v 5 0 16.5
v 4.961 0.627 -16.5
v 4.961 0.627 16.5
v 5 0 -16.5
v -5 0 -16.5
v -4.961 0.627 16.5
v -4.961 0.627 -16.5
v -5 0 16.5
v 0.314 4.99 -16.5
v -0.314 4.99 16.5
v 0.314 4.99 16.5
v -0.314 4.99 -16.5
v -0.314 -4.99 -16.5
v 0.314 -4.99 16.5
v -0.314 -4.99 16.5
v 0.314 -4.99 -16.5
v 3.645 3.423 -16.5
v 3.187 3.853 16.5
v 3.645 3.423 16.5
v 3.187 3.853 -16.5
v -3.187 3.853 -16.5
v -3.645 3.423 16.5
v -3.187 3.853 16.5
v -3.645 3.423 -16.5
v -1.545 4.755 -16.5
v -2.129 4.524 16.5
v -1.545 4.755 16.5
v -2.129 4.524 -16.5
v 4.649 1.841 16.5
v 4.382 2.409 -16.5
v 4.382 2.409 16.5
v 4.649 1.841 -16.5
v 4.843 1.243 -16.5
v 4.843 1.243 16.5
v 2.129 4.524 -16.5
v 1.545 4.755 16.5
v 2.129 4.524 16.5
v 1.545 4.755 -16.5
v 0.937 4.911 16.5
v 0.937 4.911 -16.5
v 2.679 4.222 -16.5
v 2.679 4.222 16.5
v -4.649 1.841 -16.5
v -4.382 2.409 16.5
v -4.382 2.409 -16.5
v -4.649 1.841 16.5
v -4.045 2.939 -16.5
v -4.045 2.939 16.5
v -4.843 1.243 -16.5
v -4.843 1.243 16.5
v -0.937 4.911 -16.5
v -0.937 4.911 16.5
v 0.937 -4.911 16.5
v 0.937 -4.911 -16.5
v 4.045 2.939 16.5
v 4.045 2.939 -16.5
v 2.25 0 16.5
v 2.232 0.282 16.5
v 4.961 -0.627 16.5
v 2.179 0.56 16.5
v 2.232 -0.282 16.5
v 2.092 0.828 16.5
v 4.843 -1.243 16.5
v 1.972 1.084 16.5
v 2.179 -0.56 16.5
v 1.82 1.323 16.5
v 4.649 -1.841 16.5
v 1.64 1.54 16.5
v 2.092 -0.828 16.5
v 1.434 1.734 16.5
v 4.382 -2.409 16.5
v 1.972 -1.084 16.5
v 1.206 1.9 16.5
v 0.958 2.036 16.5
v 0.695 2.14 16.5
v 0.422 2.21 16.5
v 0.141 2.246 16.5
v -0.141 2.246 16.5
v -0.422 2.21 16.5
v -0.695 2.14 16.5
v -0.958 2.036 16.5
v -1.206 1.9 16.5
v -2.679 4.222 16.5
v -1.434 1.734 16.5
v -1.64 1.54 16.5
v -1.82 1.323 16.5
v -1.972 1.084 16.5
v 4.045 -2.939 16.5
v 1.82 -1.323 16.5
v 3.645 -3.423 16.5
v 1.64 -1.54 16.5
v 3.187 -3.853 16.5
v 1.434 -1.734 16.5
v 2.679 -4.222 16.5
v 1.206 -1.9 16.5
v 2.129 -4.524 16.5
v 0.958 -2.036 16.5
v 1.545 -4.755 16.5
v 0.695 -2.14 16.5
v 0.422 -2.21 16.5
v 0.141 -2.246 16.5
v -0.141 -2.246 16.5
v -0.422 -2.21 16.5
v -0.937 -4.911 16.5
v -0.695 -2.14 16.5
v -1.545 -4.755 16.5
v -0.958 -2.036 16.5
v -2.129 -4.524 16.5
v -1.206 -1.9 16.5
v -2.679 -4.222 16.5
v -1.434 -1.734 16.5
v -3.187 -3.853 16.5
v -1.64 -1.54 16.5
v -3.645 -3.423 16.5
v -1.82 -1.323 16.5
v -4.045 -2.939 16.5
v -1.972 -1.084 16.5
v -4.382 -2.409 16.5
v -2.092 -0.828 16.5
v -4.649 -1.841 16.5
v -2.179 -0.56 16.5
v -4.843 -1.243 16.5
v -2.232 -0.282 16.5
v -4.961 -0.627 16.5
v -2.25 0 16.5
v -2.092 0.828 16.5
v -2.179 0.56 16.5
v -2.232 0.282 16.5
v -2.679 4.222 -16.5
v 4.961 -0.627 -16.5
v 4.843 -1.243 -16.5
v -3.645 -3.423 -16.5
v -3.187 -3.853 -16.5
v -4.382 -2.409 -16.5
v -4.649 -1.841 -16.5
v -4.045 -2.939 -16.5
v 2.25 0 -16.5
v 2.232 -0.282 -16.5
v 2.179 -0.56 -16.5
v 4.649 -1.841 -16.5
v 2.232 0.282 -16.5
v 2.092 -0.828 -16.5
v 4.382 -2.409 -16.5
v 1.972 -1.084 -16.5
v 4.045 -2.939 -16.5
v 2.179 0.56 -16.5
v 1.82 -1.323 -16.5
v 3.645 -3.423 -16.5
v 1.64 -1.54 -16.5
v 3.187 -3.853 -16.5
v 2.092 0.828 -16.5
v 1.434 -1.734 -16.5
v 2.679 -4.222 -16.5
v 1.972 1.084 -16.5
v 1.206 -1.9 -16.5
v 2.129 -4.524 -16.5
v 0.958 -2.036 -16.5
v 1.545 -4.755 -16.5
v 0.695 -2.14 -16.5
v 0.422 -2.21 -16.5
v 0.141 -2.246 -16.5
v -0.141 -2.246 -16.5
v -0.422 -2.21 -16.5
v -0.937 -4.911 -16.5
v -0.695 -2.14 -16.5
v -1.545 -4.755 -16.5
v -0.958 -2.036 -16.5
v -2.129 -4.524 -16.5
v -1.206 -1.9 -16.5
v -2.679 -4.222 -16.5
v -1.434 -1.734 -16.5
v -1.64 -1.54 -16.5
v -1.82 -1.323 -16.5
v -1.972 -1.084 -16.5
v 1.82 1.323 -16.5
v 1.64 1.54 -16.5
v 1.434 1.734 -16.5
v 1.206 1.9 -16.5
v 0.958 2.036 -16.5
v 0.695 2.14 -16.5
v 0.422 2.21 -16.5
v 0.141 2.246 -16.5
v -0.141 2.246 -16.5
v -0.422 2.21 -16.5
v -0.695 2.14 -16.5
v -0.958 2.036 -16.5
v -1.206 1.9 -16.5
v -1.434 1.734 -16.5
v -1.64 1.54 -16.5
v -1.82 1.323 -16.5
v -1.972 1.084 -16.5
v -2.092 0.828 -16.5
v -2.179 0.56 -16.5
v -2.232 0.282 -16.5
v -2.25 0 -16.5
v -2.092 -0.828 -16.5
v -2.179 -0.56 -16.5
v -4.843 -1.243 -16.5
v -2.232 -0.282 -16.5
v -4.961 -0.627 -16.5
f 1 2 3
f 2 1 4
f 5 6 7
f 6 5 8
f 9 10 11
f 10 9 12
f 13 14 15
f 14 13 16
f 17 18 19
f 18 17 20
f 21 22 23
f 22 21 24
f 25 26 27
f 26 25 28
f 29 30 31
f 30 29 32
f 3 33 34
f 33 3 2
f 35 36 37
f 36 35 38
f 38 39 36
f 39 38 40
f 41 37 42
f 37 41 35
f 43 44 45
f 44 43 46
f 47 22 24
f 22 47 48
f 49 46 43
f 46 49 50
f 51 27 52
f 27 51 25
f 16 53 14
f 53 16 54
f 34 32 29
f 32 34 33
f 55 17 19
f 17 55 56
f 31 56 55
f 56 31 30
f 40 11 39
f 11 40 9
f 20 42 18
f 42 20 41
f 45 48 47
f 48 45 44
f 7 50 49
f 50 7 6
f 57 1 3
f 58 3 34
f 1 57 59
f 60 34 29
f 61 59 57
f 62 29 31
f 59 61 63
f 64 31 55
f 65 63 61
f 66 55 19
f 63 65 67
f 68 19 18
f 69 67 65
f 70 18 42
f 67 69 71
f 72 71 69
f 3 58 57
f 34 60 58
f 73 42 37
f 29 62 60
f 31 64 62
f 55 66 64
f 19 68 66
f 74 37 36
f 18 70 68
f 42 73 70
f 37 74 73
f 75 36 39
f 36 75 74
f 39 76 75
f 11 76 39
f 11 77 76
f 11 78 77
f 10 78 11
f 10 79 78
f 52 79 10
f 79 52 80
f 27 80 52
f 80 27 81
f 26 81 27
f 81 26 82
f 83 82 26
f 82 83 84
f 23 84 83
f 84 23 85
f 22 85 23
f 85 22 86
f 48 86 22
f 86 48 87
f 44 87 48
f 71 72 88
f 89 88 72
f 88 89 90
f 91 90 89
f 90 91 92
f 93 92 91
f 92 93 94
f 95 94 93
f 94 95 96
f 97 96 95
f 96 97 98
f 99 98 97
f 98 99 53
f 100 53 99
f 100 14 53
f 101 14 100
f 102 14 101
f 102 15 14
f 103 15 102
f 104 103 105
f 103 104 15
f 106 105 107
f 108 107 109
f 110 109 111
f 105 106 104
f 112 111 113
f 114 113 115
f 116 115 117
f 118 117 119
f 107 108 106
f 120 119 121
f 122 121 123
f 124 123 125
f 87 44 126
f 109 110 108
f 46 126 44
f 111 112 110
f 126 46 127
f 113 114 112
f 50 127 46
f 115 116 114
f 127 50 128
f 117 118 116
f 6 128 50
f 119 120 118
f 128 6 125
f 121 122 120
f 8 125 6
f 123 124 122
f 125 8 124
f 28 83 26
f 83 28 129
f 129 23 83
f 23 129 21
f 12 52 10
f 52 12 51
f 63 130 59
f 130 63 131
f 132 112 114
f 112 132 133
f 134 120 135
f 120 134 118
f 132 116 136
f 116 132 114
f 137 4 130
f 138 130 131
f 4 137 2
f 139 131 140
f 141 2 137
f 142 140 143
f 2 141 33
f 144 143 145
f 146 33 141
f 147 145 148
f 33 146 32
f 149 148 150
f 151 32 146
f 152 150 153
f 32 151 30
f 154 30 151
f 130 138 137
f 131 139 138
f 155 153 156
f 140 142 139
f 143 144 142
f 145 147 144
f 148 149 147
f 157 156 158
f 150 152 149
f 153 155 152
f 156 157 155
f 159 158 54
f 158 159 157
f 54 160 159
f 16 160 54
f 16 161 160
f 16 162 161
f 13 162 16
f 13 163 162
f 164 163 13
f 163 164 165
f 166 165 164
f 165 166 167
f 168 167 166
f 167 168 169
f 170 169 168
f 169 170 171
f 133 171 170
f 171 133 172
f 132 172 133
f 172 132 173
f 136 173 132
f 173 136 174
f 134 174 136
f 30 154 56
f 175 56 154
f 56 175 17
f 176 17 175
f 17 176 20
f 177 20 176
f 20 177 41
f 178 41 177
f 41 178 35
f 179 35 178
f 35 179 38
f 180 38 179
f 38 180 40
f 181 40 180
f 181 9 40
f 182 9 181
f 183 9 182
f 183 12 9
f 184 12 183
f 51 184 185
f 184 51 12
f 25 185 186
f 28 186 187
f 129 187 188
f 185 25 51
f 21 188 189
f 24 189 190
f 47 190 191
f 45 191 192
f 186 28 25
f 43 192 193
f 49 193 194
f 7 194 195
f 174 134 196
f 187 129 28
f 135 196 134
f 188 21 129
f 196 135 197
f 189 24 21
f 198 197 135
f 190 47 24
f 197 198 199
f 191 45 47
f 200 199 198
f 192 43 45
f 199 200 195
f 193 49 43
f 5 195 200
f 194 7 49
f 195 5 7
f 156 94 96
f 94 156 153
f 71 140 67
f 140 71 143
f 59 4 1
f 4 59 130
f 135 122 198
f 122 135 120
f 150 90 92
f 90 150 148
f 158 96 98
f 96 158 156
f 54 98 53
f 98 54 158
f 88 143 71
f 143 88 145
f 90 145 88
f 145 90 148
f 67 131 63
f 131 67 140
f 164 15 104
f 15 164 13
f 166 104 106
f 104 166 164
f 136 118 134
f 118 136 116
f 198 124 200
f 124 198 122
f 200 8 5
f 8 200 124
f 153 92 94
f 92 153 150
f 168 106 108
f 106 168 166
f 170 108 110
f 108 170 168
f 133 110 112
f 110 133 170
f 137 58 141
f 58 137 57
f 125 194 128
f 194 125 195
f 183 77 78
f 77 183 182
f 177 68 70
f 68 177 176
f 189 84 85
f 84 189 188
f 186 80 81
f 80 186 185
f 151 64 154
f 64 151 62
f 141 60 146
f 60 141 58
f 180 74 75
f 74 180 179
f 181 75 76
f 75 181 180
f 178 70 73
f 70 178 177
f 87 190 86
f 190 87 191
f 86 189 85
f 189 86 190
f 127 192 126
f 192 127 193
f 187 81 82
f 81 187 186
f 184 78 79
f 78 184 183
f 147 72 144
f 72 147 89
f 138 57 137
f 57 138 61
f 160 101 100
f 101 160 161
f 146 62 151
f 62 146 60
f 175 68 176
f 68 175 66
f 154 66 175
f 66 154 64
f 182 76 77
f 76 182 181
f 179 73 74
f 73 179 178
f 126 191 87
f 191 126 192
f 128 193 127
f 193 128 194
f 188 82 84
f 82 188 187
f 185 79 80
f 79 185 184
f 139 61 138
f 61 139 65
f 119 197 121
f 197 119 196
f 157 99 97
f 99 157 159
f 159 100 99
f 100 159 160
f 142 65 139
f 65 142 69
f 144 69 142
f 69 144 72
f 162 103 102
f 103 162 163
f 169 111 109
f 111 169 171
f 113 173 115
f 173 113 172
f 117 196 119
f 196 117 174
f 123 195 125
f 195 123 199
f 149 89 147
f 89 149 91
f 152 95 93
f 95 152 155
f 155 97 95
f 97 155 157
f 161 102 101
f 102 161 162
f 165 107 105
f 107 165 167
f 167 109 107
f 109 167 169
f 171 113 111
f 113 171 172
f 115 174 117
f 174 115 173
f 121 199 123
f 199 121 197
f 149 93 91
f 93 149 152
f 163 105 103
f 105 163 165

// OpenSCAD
$fn = 50;


difference() {
	union() {
		translate(v = [0, 0, -16.5000000000]) {
			cylinder(h = 33, r = 5.0000000000);
		}
	}
	union() {
		translate(v = [0, 0, -100.0000000000]) {
			cylinder(h = 200, r = 2.2500000000);
		}
	}
}
